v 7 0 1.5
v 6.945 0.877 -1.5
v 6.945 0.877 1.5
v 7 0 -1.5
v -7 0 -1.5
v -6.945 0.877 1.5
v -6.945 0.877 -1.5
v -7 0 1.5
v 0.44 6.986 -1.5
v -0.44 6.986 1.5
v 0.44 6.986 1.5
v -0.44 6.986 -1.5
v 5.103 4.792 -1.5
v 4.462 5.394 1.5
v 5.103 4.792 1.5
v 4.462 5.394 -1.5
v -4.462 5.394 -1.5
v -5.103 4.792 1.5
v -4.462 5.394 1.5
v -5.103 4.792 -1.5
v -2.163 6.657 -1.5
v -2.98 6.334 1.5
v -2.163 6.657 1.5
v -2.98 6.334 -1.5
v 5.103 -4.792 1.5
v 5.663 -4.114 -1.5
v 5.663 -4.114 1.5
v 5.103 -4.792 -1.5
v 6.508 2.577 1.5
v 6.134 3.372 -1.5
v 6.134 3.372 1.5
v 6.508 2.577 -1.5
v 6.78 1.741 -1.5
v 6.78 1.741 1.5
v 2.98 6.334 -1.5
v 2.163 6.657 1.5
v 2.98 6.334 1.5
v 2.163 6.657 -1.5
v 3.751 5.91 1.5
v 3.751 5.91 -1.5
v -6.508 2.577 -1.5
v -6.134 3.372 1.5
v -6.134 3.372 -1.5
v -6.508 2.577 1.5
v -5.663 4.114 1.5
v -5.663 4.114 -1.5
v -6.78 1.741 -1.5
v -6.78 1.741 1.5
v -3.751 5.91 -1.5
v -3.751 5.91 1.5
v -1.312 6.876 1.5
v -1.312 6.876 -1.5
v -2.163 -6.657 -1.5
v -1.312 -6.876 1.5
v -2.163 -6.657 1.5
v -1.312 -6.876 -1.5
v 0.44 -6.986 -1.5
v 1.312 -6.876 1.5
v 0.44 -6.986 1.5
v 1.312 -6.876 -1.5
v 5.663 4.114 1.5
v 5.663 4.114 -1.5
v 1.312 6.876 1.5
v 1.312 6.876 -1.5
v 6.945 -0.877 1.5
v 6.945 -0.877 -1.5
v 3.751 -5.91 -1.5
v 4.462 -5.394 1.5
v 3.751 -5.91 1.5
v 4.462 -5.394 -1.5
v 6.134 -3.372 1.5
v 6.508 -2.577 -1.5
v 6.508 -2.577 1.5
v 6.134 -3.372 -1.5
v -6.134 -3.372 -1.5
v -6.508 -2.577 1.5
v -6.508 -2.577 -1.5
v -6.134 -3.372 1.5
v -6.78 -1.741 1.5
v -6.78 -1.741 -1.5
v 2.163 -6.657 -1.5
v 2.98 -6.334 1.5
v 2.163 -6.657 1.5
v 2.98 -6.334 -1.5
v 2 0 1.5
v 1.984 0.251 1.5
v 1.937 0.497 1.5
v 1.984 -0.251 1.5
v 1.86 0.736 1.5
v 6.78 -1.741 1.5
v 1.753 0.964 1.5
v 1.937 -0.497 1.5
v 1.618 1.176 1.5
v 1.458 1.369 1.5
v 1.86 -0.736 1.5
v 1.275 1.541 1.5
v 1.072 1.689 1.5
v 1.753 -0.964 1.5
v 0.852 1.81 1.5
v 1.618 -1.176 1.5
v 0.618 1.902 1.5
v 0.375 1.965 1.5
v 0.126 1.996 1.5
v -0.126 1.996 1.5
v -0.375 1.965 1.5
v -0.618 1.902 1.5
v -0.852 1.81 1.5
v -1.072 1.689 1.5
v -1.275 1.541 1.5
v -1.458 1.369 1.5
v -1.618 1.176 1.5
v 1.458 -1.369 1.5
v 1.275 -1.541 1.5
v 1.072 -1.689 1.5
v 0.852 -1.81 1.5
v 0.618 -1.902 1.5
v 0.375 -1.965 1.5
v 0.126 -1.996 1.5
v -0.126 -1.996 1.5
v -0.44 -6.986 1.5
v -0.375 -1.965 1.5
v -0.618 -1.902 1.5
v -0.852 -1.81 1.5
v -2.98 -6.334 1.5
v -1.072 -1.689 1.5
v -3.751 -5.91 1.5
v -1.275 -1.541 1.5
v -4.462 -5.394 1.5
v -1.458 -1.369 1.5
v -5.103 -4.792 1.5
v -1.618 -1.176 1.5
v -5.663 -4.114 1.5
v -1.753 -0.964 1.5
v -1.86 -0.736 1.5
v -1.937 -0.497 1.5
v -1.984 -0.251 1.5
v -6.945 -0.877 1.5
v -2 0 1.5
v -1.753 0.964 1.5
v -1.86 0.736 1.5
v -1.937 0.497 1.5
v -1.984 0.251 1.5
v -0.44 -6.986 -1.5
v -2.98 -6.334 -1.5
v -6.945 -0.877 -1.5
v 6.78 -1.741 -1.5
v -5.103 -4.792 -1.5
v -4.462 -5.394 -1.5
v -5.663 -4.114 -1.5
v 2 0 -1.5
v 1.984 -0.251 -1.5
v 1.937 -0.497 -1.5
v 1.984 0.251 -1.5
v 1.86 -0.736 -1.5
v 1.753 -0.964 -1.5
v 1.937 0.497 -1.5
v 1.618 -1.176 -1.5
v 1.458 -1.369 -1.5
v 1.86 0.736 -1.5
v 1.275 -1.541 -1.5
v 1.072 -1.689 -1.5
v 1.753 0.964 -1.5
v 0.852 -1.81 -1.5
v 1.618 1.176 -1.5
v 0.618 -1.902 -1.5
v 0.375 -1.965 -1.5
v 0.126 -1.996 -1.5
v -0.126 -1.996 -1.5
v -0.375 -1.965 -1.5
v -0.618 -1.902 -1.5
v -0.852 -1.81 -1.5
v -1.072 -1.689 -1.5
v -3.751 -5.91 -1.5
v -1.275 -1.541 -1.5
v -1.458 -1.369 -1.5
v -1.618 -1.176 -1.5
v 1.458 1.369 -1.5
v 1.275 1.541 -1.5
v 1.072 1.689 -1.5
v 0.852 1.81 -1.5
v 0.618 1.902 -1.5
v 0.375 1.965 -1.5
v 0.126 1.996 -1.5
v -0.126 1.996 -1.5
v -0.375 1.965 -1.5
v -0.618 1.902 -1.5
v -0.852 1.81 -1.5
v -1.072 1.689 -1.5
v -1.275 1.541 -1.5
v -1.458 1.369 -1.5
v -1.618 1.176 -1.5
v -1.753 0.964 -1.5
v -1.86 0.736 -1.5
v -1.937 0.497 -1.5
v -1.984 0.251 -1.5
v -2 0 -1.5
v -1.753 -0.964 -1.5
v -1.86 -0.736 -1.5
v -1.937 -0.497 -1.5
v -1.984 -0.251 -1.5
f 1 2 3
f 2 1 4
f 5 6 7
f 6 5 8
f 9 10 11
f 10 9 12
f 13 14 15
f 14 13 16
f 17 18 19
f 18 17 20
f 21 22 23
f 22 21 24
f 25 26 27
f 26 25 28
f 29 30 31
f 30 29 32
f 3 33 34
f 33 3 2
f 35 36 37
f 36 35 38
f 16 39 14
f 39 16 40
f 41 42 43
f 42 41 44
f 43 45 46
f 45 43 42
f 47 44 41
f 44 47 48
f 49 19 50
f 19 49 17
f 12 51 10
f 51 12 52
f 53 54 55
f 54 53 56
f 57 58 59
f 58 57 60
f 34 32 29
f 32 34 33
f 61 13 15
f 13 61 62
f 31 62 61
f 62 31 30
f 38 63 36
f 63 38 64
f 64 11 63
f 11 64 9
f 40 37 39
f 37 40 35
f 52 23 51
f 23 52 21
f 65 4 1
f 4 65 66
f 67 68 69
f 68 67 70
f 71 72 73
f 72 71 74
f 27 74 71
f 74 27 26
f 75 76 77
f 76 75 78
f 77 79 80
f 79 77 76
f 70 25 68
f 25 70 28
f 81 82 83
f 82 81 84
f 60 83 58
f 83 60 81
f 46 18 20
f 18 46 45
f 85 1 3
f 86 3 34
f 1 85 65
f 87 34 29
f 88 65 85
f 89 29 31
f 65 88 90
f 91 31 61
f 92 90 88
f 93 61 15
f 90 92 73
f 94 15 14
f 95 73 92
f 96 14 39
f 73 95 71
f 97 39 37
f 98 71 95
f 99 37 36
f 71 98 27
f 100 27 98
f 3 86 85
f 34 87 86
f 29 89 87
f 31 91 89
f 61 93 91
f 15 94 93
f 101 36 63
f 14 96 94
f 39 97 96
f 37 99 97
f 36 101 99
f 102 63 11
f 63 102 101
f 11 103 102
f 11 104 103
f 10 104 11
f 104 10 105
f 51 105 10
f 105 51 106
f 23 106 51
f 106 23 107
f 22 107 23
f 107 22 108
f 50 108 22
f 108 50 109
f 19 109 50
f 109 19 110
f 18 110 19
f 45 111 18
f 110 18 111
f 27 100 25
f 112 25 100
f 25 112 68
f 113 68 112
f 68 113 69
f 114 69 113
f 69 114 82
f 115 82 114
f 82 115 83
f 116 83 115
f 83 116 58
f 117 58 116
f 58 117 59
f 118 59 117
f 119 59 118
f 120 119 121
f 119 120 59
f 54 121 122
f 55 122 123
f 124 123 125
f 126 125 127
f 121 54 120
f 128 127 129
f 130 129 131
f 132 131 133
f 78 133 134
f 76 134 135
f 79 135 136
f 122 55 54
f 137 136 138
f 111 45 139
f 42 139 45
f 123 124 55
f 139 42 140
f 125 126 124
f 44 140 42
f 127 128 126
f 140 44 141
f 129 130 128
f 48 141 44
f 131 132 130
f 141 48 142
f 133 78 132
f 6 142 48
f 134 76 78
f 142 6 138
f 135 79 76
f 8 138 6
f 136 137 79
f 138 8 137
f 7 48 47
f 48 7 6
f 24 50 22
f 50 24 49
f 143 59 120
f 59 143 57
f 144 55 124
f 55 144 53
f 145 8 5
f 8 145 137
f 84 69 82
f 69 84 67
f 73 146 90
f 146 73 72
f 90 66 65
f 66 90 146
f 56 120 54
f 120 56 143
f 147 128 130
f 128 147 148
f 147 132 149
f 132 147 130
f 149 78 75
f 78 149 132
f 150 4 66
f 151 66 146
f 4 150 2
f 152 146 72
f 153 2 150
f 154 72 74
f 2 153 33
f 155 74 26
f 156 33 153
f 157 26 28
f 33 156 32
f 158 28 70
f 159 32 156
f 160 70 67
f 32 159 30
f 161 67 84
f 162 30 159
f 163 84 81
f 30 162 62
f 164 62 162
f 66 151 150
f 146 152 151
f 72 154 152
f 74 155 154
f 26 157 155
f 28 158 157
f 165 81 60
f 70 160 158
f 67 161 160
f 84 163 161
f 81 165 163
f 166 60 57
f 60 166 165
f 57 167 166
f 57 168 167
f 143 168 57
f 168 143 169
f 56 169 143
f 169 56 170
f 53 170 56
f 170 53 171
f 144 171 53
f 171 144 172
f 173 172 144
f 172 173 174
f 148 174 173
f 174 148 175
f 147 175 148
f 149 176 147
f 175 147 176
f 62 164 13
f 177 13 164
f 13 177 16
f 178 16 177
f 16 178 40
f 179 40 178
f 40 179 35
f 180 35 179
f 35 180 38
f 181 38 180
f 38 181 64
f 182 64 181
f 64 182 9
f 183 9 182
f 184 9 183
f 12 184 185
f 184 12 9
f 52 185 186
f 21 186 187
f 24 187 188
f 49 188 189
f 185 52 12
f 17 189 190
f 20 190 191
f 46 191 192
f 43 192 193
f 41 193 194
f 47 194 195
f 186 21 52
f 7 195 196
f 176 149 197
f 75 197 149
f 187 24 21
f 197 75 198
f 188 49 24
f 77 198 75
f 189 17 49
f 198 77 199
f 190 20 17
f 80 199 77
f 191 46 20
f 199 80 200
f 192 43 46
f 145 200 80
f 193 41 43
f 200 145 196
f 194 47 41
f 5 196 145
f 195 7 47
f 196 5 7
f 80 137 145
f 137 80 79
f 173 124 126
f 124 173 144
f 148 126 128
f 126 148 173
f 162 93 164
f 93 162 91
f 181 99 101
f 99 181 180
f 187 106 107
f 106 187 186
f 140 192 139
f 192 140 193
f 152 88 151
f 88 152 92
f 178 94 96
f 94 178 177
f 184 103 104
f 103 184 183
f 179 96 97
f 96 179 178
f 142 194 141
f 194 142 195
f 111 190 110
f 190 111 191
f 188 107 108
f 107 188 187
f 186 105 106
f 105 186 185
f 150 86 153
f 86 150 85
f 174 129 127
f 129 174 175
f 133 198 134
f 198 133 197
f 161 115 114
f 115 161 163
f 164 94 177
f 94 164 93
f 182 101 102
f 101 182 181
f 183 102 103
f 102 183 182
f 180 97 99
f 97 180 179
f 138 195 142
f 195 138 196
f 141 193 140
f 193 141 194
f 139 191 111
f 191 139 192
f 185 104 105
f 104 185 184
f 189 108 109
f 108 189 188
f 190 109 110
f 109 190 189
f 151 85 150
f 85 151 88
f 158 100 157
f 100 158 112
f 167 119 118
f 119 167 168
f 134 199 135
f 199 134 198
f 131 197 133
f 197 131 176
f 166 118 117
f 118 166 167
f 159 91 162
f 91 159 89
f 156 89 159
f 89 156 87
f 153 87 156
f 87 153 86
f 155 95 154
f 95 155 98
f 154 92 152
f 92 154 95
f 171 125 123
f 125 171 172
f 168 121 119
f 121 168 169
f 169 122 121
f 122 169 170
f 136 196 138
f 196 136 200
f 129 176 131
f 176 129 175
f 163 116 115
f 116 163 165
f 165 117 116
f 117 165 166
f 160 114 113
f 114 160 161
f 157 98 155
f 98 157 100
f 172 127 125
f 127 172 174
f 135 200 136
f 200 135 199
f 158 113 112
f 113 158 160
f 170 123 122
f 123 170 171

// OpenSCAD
$fn = 50;


difference() {
	union() {
		translate(v = [0, 0, -1.5000000000]) {
			cylinder(h = 3, r = 7.0000000000);
		}
	}
	union() {
		translate(v = [0, 0, -100.0000000000]) {
			cylinder(h = 200, r = 2.0000000000);
		}
	}
}
